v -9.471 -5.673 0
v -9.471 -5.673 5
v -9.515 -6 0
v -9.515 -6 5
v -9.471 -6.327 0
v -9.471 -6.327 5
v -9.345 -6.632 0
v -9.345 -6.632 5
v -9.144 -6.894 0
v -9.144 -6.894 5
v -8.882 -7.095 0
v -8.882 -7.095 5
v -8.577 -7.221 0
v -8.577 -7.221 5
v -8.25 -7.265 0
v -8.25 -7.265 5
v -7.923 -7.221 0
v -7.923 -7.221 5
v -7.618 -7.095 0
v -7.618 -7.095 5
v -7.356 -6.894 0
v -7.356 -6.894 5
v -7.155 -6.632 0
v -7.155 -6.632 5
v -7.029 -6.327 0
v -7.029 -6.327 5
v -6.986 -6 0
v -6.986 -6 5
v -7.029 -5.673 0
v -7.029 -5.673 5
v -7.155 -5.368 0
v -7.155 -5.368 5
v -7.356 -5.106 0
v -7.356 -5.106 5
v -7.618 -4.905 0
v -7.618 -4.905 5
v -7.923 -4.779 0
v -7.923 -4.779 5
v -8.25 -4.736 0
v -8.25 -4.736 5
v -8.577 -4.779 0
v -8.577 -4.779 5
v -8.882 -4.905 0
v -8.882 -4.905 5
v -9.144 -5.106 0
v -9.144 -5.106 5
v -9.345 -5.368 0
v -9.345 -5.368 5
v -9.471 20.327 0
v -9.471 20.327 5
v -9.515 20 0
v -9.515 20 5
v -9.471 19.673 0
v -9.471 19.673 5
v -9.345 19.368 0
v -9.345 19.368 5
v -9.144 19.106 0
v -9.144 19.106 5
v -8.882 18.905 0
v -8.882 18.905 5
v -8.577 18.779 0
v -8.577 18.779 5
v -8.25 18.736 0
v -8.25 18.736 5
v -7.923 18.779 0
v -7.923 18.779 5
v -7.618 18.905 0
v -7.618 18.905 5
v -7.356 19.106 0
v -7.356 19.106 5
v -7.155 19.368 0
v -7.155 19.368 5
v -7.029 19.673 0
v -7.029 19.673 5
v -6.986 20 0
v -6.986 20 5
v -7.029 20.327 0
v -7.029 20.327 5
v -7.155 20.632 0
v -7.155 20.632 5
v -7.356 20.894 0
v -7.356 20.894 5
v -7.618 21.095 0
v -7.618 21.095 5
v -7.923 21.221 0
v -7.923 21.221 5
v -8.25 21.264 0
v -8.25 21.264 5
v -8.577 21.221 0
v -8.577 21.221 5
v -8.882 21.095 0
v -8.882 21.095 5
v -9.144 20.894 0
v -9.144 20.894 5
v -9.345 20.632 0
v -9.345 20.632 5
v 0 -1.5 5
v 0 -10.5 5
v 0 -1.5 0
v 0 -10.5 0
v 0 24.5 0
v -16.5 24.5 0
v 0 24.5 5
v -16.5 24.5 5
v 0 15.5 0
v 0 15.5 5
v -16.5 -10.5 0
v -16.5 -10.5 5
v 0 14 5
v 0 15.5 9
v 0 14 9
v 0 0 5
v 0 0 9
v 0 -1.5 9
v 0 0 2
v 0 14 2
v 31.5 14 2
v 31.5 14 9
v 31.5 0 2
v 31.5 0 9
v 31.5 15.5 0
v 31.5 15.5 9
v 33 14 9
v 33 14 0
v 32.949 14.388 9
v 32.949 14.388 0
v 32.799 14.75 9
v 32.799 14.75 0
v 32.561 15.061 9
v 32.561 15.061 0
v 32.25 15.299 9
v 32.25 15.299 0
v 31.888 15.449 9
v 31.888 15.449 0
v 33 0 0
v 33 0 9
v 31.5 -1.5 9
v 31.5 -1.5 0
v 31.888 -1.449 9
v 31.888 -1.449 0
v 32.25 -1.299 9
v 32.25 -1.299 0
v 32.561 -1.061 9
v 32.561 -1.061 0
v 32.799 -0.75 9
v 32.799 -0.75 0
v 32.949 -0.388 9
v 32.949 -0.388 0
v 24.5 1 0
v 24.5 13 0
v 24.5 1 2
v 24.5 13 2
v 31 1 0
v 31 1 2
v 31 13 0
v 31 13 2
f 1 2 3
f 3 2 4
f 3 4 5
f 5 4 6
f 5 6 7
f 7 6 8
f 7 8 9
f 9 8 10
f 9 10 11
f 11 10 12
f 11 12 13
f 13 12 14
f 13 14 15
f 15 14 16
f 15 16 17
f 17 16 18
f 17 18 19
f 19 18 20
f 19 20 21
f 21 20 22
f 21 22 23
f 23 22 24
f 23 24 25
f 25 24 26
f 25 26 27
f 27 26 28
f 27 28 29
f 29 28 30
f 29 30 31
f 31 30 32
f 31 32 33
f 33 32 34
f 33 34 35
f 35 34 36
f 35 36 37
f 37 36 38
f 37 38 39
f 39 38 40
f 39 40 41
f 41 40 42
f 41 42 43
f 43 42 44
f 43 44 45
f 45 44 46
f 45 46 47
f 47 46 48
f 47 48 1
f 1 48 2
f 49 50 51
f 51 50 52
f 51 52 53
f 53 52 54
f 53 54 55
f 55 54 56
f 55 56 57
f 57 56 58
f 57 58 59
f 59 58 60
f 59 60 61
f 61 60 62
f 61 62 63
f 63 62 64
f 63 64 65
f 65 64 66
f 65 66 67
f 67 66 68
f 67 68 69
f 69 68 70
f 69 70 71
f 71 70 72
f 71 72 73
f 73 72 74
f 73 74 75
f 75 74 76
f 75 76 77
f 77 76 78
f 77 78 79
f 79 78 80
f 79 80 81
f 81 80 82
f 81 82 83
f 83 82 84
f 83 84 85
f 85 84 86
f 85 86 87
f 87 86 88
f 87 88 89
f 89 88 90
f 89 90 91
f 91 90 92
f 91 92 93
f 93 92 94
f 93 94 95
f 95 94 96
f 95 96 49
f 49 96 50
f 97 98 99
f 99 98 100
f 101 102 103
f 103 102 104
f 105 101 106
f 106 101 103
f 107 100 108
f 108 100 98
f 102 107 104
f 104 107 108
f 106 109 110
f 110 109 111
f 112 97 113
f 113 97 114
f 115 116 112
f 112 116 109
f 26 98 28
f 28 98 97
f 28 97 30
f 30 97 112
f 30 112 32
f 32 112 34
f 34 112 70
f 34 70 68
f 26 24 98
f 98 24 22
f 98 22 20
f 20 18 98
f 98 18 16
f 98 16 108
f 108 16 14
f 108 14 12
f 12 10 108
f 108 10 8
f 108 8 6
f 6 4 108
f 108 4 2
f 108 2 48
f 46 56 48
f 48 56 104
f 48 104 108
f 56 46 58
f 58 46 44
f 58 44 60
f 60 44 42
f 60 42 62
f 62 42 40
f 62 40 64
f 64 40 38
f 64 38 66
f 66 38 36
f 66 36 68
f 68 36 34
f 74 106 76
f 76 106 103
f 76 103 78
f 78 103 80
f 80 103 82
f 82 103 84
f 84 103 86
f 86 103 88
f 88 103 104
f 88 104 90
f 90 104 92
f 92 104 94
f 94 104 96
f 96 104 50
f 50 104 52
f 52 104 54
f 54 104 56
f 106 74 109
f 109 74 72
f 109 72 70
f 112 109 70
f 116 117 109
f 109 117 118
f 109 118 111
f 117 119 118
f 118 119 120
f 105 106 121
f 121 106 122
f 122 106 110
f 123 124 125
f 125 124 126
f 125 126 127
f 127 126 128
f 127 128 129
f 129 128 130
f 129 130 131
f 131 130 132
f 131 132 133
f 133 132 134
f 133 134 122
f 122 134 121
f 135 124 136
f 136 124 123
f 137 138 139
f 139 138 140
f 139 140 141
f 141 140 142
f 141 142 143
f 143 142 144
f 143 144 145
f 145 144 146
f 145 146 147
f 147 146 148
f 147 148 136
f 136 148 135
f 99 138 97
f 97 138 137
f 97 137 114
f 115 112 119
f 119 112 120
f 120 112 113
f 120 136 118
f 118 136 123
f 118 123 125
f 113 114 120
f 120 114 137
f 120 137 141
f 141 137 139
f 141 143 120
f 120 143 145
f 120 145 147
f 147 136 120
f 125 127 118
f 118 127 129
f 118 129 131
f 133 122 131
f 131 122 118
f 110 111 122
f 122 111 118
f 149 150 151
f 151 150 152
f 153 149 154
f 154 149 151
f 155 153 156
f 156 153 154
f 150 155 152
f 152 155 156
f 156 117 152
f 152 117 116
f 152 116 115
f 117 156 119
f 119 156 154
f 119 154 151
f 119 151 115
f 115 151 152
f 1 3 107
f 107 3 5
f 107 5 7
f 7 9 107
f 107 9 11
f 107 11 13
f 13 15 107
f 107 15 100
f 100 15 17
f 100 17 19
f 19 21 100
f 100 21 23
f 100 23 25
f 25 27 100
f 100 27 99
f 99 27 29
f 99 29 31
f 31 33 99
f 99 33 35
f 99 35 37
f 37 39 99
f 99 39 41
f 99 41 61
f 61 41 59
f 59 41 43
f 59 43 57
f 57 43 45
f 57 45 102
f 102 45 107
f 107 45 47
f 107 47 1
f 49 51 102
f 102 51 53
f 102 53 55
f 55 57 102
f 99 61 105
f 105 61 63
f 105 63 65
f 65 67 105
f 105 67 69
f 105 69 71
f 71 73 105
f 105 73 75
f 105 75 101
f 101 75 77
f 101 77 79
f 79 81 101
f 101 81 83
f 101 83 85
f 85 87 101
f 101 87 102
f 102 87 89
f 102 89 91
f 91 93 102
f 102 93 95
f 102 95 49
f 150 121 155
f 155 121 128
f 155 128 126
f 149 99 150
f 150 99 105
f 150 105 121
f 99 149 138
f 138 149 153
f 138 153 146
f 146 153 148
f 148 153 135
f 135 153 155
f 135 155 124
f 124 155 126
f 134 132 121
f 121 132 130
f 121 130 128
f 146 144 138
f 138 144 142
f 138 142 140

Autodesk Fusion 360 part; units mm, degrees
sketch "Schizzo1" plane through (0, 0, 0) normal (0, 0, 1) x (1, 0, 0)
  line L0 (0, 0) -> (31.5, 0)
  line L1 (31.5, 0) -> (31.5, 14)
  line L2 (31.5, 14) -> (0, 14)
  line L3 (0, 14) -> (0, 0)
  line L4 (0, 14) -> (0, 15.5)
  line L5 (0, 15.5) -> (31.5, 15.5)
  line L6 (0, 0) -> (0, -1.5)
  line L7 (0, -1.5) -> (31.5, -1.5)
  line L8 (33, 14) -> (33, 0)
  arc A0 (31.5, -1.5) -> (33, 0) centre (31.5, 0) ccw
  arc A1 (33, 14) -> (31.5, 15.5) centre (31.5, 14) ccw
  line L9 (0, 0) -> (-6.5, 0)
  line L10 (0, 14) -> (-6.5, 14)
  line L11 (-6.5, 14) -> (-6.5, 0)
  line L12 (0, -1.5) -> (-6.5, -1.5)
  line L13 (-6.5, -1.5) -> (-6.5, 0)
  line L14 (-6.5, 14) -> (-6.5, 15.5)
  line L15 (-6.5, 15.5) -> (0, 15.5)
  line L16 (-6.5, 15.5) -> (-16.5, 15.5)
  line L17 (-6.5, 0) -> (-16.5, 0)
  line L18 (-16.5, 15.5) -> (-16.5, 0)
  line L19 (-6.5, -1.5) -> (-16.5, -1.5)
  line L20 (-16.5, -1.5) -> (-16.5, 0)
  line L21 (-6.5, 14) -> (-16.5, 14)
  line L22 (-16.5, -1.5) -> (-16.5, -10.5)
  line L23 (0, -1.5) -> (0, -10.5)
  line L24 (0, -10.5) -> (-16.5, -10.5)
  line L25 (-16.5, 15.5) -> (-16.5, 24.5)
  line L26 (0, 15.5) -> (0, 24.5)
  line L27 (-16.5, 24.5) -> (0, 24.5)
  circle A2 centre (-8.25, -6) radius 1.5
  circle A3 centre (-8.25, 20) radius 1.5
  line L28 (31.5, 0) -> (24.5, 0)
  line L29 (24.5, 1) -> (31, 1)
  line L30 (24.5, 13) -> (31, 13)
  line L31 (31, 13) -> (31, 1)
  line L32 (24.5, 13) -> (24.5, 1)
  dimension "d1" = 31.5
  dimension "d2" = 14
  dimension "d3" = 1.5
  dimension "d4" = 1.5
  dimension "d5" = 1.5
  dimension "d6" = 1.5
  dimension "d7" = 1.5
  dimension "d8" = 1.5
  dimension "d9" = 6.5
  dimension "d10" = 6.5
  dimension "d11" = 10
  dimension "d12" = 10
  dimension "d13" = 9
  dimension "d14" = 9
  dimension "d15" = 9
  dimension "d16" = 9
  dimension "d17" = 3
  dimension "d18" = 3
  dimension "d19" = 7
  dimension "d20" = 1
  dimension "d21" = 6.5
  dimension "d23" = 6.5
extrude "Estrusione1" add sketch "Schizzo1" along normal blind 2 contours L0 L1 L2 L3 L28 makes body 1
extrude "Estrusione2" add sketch "Schizzo1" along normal blind 9 contours L0 L1 L2 L4 L5 L6 L7 L8 A0 A1 L28 bodies 1
extrude "Estrusione3" add sketch "Schizzo1" along normal blind 5 separate body contours L3 L9 L10 L11 makes body 2
extrude "Estrusione4" add sketch "Schizzo1" along normal blind 5 contours L6 L9 L12 L13 | L4 L10 L14 L15 | L12 L19 L22 L23 L24 | L11 L17 L18 L21 | L13 L17 L19 L20 | L15 L16 L25 L26 L27 | L14 L16 L18 L21 bodies 1 2
extrude "Estrusione5" add sketch "Schizzo1" along normal blind 5 contours A3 bodies 1
extrude "Estrusione6" add sketch "Schizzo1" along normal blind 5 contours A2 bodies 1
hole "Foratura1" at (-8.25, 20, 5) direction (0, 0, -1) diameter 2.529 depth 6 tip angle 118 bodies 1
hole "Foratura2" at (-8.25, -6.0001, 5) direction (0, 0, -1) diameter 2.529 depth 6 tip angle 118 bodies 1
